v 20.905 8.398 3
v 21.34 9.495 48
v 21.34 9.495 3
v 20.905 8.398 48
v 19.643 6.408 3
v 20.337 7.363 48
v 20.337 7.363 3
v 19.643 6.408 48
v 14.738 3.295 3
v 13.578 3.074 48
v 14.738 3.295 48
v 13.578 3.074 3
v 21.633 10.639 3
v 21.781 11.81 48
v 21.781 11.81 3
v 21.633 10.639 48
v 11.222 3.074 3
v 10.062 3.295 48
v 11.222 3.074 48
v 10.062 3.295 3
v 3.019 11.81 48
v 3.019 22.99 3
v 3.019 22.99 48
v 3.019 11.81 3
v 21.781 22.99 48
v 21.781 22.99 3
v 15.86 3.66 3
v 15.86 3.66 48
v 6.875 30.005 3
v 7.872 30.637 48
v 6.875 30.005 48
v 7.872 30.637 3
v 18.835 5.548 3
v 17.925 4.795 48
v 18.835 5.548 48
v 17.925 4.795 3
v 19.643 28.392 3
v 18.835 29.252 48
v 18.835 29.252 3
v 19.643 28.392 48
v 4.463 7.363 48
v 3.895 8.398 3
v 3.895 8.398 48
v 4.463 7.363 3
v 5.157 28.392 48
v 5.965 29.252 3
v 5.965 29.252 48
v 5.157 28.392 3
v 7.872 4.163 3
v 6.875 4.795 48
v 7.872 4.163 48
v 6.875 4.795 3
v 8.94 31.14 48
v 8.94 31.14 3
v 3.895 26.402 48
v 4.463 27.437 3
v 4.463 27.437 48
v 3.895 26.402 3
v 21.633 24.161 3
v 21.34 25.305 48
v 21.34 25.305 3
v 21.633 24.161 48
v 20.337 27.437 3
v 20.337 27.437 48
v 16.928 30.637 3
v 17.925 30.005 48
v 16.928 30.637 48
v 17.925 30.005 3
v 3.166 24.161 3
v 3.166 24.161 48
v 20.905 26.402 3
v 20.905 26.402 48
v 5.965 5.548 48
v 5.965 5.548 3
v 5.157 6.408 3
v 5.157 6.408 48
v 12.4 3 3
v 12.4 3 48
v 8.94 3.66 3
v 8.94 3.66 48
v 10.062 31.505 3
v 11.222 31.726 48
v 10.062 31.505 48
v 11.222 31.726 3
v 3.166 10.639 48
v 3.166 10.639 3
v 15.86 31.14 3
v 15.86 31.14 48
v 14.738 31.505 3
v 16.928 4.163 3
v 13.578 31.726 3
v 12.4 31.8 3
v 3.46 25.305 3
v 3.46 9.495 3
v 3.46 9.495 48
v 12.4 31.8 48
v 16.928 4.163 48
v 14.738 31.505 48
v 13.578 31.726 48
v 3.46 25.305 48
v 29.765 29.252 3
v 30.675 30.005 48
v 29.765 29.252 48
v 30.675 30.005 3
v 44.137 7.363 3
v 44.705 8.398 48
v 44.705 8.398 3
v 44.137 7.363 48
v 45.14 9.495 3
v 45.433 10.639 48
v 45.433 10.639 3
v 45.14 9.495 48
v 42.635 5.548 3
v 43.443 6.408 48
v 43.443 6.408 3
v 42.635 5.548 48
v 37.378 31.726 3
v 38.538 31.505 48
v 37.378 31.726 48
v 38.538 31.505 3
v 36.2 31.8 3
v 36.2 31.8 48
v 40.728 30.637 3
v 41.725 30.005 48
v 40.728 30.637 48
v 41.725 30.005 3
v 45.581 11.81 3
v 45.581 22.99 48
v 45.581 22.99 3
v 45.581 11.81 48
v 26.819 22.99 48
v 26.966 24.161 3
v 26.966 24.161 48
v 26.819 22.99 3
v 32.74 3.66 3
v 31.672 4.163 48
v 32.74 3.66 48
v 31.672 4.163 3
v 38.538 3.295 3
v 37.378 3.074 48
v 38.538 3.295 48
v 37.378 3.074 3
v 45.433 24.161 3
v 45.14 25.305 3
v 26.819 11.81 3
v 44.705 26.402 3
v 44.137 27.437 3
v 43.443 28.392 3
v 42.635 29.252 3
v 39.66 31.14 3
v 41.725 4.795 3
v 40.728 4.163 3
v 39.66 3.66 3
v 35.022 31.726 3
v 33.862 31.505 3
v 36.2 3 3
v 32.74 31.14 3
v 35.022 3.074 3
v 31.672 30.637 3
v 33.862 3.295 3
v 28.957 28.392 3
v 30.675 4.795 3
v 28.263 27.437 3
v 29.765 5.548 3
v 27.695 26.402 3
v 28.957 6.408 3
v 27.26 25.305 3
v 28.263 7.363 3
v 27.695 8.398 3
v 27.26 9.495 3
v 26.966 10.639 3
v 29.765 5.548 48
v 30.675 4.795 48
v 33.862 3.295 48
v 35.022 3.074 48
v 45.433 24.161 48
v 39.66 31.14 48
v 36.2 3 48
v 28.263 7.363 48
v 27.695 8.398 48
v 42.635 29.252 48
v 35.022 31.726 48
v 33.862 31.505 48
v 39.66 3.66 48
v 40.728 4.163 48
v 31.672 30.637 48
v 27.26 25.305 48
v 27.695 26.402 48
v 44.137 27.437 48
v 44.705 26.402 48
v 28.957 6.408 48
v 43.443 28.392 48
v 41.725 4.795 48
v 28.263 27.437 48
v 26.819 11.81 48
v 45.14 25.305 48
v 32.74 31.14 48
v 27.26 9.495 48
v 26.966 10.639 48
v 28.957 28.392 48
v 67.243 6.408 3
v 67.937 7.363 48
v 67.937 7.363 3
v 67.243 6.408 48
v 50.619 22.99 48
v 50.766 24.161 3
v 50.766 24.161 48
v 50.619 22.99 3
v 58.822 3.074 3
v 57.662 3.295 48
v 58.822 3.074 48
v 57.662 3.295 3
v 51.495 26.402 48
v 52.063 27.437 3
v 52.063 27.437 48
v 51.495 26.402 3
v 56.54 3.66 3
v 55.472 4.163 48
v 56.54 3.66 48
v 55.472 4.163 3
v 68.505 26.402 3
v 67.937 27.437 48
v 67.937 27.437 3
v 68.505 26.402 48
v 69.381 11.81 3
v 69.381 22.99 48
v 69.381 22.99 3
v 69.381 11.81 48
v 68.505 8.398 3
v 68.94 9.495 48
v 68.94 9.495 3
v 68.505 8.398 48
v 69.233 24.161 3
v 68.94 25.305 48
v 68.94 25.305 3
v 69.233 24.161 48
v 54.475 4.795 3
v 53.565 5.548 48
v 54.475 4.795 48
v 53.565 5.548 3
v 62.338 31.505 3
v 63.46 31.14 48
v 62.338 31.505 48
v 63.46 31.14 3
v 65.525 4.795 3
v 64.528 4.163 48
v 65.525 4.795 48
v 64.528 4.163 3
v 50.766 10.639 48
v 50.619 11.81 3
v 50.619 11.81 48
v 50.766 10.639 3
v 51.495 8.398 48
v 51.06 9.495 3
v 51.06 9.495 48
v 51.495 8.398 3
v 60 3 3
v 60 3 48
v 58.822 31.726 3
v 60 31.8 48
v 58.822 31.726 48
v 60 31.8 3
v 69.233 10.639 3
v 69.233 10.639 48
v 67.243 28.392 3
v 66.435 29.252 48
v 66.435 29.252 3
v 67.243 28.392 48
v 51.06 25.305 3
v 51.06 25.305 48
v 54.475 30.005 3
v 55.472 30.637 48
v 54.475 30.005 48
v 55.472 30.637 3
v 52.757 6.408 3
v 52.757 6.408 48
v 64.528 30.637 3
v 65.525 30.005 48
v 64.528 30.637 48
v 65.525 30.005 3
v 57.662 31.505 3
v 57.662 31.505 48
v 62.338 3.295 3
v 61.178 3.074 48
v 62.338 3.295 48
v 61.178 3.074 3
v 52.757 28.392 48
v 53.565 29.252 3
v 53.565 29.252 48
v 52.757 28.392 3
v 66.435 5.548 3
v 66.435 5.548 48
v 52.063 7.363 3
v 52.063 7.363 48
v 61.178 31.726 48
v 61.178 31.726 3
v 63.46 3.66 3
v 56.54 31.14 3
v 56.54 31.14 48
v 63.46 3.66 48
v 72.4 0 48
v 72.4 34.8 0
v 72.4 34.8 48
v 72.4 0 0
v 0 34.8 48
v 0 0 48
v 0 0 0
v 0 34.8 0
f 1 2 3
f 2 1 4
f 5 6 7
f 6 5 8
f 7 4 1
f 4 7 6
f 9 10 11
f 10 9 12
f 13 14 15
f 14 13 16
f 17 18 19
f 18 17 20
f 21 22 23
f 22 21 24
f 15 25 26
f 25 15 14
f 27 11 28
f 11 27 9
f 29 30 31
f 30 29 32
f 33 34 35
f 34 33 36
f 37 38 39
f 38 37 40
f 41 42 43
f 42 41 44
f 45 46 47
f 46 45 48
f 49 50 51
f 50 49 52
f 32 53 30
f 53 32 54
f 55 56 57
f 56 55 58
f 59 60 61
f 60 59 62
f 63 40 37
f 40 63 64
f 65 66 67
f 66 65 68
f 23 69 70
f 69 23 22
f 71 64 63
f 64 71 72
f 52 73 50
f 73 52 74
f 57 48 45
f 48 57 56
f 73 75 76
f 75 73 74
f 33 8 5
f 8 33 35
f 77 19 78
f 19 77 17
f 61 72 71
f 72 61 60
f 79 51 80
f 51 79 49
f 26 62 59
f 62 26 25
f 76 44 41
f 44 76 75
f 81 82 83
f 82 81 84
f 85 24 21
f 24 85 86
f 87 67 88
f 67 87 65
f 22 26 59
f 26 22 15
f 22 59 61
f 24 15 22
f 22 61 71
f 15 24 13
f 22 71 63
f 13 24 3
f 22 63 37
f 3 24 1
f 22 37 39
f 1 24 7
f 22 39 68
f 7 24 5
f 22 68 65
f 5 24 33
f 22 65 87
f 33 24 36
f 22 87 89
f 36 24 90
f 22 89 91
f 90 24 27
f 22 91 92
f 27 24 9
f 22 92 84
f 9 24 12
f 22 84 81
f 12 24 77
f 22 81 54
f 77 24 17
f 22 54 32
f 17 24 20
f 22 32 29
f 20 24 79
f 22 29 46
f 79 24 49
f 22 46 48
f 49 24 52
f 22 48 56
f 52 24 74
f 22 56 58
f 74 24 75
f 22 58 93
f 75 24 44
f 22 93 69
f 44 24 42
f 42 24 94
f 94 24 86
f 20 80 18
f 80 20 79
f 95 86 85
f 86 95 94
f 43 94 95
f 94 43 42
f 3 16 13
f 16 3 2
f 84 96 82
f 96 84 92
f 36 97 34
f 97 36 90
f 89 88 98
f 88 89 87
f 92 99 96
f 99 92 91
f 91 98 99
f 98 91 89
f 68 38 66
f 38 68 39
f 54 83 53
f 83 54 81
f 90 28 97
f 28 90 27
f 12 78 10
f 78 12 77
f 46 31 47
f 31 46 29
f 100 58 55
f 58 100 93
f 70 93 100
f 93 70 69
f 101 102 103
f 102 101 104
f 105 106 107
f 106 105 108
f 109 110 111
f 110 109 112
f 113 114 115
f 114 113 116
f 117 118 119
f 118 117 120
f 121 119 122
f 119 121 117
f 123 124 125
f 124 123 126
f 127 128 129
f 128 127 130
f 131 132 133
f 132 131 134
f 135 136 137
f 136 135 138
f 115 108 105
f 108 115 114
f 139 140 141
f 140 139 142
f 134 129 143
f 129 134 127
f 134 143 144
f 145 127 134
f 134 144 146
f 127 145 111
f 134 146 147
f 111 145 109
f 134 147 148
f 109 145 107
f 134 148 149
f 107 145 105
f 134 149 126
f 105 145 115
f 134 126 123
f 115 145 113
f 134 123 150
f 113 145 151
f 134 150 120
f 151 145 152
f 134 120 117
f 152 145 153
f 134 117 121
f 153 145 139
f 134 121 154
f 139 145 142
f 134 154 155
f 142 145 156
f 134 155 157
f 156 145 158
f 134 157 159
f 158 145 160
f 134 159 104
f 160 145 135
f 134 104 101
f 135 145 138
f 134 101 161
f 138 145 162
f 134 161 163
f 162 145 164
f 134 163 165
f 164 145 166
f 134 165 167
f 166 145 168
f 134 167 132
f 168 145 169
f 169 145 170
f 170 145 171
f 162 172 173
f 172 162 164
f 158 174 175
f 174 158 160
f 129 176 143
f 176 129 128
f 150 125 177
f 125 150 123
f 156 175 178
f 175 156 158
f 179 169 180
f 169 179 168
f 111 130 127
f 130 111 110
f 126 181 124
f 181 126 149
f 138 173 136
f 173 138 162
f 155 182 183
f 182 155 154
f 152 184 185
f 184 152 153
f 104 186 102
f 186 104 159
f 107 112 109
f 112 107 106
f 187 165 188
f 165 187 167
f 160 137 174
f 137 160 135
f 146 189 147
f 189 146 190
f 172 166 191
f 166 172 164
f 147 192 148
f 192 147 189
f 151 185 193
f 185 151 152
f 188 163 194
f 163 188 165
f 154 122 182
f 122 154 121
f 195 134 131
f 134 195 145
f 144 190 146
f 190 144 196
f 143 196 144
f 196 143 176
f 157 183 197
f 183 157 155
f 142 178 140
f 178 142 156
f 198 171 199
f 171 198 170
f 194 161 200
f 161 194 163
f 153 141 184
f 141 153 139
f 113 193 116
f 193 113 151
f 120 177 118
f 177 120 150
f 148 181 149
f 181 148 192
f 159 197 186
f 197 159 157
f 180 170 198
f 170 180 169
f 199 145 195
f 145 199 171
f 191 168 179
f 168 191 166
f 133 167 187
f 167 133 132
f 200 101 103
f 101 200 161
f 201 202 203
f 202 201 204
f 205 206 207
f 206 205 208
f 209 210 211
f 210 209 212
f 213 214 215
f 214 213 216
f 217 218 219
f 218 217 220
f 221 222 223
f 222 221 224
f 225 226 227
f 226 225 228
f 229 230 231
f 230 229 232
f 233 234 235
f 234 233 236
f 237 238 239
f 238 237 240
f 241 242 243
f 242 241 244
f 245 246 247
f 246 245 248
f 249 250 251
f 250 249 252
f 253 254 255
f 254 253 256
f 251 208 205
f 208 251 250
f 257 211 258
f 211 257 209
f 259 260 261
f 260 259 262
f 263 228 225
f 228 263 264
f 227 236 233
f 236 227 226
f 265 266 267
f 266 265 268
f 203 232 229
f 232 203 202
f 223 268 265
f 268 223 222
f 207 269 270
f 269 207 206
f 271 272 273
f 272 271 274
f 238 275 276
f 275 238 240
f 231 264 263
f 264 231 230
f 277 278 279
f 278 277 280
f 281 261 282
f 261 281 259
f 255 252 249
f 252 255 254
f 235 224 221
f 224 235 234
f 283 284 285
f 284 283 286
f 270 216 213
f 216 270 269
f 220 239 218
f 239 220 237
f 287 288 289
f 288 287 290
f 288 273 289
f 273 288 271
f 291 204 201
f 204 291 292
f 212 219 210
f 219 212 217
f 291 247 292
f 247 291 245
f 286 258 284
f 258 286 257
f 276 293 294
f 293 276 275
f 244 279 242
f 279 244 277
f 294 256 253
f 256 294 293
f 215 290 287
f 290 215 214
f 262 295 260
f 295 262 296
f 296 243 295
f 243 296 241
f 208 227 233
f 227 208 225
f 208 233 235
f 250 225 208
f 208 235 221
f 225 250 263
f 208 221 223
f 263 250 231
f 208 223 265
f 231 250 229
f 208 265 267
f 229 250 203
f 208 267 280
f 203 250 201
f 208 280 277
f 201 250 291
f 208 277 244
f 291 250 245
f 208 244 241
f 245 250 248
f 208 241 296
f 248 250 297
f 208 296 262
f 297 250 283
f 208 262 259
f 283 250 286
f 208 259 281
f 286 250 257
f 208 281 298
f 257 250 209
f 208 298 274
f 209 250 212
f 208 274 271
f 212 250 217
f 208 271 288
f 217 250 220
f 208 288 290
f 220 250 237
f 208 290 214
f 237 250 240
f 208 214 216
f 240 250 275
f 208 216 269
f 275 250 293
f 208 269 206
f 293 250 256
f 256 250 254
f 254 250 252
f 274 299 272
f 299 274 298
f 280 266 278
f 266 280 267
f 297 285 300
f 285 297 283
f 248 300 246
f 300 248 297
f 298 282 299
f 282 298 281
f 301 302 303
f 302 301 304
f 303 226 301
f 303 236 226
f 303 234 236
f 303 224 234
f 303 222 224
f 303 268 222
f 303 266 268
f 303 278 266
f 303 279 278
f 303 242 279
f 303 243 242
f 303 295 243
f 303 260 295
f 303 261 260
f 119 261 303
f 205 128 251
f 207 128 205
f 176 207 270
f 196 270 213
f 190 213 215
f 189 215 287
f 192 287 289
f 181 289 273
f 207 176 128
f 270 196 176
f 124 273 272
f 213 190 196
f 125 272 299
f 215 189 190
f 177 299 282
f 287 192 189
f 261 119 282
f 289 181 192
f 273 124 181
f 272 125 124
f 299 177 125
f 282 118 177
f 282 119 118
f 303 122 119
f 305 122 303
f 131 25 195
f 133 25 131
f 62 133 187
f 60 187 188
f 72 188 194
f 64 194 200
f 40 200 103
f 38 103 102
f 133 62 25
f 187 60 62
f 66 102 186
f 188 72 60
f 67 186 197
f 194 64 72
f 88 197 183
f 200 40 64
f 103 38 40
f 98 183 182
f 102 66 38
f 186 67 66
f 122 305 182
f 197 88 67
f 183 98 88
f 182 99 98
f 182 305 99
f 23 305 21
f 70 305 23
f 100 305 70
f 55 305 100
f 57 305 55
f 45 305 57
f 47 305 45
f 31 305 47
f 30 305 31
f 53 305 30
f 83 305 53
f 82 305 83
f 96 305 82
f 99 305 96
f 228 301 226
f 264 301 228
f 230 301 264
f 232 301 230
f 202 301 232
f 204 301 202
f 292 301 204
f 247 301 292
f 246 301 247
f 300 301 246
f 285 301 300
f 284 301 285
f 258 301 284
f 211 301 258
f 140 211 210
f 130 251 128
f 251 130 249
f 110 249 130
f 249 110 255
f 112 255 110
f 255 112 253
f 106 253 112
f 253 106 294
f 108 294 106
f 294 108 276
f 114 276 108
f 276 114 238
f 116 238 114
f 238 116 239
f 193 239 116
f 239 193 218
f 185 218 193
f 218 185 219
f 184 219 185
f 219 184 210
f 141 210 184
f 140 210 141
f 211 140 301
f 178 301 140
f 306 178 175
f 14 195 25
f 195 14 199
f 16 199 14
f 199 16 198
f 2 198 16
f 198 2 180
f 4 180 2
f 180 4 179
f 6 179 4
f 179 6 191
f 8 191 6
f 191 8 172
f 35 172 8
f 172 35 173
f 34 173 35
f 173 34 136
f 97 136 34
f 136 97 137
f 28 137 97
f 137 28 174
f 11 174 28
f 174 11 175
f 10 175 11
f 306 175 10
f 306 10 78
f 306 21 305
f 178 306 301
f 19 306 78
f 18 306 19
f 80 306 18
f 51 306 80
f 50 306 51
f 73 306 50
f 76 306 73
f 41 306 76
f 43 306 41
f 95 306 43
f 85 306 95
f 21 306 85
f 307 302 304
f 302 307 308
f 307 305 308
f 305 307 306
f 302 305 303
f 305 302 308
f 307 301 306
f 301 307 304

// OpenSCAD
// Parametric Stabilo Boss Holder
// All measurements in mm

rotation = true;
pen_width = 28.8;
pen_thick = 18.8;
wall = 3.0;
depth = 45.0;
spacing = 5.0;
num_pens = 3;

block_width = (true==rotation) ? 
                num_pens * (pen_thick + spacing) - spacing + (2 * wall) : 
                num_pens * (pen_width + spacing) - spacing + (2 * wall) ;
block_depth = (true==rotation) ? pen_width + (2 * wall) : pen_thick + (2 * wall);
block_height = depth + wall;

module pen_profile() {
    // Rounded rectangle shape mimicking the Stabilo Boss body
    hull() {
        translate([pen_thick/2, pen_thick/2, 0]) cylinder(h=depth+5, r=pen_thick/2, $fn=50);
        translate([pen_width - pen_thick/2, pen_thick/2, 0]) cylinder(h=depth+5, r=pen_thick/2, $fn=50);
    }
}


difference() {
    // Main body block
    cube([block_width, block_depth, block_height]);
    
    // Cutouts for the highlighters
    for (i = [0 : num_pens - 1]) {
        if ( true == rotation ) {
            translate([pen_thick + wall + i * (pen_thick + spacing), wall, wall])
                rotate([0,0,90]) pen_profile();
        } else {
            translate([wall + i * (pen_width + spacing), wall, wall])
                pen_profile();
        }
    }
}
